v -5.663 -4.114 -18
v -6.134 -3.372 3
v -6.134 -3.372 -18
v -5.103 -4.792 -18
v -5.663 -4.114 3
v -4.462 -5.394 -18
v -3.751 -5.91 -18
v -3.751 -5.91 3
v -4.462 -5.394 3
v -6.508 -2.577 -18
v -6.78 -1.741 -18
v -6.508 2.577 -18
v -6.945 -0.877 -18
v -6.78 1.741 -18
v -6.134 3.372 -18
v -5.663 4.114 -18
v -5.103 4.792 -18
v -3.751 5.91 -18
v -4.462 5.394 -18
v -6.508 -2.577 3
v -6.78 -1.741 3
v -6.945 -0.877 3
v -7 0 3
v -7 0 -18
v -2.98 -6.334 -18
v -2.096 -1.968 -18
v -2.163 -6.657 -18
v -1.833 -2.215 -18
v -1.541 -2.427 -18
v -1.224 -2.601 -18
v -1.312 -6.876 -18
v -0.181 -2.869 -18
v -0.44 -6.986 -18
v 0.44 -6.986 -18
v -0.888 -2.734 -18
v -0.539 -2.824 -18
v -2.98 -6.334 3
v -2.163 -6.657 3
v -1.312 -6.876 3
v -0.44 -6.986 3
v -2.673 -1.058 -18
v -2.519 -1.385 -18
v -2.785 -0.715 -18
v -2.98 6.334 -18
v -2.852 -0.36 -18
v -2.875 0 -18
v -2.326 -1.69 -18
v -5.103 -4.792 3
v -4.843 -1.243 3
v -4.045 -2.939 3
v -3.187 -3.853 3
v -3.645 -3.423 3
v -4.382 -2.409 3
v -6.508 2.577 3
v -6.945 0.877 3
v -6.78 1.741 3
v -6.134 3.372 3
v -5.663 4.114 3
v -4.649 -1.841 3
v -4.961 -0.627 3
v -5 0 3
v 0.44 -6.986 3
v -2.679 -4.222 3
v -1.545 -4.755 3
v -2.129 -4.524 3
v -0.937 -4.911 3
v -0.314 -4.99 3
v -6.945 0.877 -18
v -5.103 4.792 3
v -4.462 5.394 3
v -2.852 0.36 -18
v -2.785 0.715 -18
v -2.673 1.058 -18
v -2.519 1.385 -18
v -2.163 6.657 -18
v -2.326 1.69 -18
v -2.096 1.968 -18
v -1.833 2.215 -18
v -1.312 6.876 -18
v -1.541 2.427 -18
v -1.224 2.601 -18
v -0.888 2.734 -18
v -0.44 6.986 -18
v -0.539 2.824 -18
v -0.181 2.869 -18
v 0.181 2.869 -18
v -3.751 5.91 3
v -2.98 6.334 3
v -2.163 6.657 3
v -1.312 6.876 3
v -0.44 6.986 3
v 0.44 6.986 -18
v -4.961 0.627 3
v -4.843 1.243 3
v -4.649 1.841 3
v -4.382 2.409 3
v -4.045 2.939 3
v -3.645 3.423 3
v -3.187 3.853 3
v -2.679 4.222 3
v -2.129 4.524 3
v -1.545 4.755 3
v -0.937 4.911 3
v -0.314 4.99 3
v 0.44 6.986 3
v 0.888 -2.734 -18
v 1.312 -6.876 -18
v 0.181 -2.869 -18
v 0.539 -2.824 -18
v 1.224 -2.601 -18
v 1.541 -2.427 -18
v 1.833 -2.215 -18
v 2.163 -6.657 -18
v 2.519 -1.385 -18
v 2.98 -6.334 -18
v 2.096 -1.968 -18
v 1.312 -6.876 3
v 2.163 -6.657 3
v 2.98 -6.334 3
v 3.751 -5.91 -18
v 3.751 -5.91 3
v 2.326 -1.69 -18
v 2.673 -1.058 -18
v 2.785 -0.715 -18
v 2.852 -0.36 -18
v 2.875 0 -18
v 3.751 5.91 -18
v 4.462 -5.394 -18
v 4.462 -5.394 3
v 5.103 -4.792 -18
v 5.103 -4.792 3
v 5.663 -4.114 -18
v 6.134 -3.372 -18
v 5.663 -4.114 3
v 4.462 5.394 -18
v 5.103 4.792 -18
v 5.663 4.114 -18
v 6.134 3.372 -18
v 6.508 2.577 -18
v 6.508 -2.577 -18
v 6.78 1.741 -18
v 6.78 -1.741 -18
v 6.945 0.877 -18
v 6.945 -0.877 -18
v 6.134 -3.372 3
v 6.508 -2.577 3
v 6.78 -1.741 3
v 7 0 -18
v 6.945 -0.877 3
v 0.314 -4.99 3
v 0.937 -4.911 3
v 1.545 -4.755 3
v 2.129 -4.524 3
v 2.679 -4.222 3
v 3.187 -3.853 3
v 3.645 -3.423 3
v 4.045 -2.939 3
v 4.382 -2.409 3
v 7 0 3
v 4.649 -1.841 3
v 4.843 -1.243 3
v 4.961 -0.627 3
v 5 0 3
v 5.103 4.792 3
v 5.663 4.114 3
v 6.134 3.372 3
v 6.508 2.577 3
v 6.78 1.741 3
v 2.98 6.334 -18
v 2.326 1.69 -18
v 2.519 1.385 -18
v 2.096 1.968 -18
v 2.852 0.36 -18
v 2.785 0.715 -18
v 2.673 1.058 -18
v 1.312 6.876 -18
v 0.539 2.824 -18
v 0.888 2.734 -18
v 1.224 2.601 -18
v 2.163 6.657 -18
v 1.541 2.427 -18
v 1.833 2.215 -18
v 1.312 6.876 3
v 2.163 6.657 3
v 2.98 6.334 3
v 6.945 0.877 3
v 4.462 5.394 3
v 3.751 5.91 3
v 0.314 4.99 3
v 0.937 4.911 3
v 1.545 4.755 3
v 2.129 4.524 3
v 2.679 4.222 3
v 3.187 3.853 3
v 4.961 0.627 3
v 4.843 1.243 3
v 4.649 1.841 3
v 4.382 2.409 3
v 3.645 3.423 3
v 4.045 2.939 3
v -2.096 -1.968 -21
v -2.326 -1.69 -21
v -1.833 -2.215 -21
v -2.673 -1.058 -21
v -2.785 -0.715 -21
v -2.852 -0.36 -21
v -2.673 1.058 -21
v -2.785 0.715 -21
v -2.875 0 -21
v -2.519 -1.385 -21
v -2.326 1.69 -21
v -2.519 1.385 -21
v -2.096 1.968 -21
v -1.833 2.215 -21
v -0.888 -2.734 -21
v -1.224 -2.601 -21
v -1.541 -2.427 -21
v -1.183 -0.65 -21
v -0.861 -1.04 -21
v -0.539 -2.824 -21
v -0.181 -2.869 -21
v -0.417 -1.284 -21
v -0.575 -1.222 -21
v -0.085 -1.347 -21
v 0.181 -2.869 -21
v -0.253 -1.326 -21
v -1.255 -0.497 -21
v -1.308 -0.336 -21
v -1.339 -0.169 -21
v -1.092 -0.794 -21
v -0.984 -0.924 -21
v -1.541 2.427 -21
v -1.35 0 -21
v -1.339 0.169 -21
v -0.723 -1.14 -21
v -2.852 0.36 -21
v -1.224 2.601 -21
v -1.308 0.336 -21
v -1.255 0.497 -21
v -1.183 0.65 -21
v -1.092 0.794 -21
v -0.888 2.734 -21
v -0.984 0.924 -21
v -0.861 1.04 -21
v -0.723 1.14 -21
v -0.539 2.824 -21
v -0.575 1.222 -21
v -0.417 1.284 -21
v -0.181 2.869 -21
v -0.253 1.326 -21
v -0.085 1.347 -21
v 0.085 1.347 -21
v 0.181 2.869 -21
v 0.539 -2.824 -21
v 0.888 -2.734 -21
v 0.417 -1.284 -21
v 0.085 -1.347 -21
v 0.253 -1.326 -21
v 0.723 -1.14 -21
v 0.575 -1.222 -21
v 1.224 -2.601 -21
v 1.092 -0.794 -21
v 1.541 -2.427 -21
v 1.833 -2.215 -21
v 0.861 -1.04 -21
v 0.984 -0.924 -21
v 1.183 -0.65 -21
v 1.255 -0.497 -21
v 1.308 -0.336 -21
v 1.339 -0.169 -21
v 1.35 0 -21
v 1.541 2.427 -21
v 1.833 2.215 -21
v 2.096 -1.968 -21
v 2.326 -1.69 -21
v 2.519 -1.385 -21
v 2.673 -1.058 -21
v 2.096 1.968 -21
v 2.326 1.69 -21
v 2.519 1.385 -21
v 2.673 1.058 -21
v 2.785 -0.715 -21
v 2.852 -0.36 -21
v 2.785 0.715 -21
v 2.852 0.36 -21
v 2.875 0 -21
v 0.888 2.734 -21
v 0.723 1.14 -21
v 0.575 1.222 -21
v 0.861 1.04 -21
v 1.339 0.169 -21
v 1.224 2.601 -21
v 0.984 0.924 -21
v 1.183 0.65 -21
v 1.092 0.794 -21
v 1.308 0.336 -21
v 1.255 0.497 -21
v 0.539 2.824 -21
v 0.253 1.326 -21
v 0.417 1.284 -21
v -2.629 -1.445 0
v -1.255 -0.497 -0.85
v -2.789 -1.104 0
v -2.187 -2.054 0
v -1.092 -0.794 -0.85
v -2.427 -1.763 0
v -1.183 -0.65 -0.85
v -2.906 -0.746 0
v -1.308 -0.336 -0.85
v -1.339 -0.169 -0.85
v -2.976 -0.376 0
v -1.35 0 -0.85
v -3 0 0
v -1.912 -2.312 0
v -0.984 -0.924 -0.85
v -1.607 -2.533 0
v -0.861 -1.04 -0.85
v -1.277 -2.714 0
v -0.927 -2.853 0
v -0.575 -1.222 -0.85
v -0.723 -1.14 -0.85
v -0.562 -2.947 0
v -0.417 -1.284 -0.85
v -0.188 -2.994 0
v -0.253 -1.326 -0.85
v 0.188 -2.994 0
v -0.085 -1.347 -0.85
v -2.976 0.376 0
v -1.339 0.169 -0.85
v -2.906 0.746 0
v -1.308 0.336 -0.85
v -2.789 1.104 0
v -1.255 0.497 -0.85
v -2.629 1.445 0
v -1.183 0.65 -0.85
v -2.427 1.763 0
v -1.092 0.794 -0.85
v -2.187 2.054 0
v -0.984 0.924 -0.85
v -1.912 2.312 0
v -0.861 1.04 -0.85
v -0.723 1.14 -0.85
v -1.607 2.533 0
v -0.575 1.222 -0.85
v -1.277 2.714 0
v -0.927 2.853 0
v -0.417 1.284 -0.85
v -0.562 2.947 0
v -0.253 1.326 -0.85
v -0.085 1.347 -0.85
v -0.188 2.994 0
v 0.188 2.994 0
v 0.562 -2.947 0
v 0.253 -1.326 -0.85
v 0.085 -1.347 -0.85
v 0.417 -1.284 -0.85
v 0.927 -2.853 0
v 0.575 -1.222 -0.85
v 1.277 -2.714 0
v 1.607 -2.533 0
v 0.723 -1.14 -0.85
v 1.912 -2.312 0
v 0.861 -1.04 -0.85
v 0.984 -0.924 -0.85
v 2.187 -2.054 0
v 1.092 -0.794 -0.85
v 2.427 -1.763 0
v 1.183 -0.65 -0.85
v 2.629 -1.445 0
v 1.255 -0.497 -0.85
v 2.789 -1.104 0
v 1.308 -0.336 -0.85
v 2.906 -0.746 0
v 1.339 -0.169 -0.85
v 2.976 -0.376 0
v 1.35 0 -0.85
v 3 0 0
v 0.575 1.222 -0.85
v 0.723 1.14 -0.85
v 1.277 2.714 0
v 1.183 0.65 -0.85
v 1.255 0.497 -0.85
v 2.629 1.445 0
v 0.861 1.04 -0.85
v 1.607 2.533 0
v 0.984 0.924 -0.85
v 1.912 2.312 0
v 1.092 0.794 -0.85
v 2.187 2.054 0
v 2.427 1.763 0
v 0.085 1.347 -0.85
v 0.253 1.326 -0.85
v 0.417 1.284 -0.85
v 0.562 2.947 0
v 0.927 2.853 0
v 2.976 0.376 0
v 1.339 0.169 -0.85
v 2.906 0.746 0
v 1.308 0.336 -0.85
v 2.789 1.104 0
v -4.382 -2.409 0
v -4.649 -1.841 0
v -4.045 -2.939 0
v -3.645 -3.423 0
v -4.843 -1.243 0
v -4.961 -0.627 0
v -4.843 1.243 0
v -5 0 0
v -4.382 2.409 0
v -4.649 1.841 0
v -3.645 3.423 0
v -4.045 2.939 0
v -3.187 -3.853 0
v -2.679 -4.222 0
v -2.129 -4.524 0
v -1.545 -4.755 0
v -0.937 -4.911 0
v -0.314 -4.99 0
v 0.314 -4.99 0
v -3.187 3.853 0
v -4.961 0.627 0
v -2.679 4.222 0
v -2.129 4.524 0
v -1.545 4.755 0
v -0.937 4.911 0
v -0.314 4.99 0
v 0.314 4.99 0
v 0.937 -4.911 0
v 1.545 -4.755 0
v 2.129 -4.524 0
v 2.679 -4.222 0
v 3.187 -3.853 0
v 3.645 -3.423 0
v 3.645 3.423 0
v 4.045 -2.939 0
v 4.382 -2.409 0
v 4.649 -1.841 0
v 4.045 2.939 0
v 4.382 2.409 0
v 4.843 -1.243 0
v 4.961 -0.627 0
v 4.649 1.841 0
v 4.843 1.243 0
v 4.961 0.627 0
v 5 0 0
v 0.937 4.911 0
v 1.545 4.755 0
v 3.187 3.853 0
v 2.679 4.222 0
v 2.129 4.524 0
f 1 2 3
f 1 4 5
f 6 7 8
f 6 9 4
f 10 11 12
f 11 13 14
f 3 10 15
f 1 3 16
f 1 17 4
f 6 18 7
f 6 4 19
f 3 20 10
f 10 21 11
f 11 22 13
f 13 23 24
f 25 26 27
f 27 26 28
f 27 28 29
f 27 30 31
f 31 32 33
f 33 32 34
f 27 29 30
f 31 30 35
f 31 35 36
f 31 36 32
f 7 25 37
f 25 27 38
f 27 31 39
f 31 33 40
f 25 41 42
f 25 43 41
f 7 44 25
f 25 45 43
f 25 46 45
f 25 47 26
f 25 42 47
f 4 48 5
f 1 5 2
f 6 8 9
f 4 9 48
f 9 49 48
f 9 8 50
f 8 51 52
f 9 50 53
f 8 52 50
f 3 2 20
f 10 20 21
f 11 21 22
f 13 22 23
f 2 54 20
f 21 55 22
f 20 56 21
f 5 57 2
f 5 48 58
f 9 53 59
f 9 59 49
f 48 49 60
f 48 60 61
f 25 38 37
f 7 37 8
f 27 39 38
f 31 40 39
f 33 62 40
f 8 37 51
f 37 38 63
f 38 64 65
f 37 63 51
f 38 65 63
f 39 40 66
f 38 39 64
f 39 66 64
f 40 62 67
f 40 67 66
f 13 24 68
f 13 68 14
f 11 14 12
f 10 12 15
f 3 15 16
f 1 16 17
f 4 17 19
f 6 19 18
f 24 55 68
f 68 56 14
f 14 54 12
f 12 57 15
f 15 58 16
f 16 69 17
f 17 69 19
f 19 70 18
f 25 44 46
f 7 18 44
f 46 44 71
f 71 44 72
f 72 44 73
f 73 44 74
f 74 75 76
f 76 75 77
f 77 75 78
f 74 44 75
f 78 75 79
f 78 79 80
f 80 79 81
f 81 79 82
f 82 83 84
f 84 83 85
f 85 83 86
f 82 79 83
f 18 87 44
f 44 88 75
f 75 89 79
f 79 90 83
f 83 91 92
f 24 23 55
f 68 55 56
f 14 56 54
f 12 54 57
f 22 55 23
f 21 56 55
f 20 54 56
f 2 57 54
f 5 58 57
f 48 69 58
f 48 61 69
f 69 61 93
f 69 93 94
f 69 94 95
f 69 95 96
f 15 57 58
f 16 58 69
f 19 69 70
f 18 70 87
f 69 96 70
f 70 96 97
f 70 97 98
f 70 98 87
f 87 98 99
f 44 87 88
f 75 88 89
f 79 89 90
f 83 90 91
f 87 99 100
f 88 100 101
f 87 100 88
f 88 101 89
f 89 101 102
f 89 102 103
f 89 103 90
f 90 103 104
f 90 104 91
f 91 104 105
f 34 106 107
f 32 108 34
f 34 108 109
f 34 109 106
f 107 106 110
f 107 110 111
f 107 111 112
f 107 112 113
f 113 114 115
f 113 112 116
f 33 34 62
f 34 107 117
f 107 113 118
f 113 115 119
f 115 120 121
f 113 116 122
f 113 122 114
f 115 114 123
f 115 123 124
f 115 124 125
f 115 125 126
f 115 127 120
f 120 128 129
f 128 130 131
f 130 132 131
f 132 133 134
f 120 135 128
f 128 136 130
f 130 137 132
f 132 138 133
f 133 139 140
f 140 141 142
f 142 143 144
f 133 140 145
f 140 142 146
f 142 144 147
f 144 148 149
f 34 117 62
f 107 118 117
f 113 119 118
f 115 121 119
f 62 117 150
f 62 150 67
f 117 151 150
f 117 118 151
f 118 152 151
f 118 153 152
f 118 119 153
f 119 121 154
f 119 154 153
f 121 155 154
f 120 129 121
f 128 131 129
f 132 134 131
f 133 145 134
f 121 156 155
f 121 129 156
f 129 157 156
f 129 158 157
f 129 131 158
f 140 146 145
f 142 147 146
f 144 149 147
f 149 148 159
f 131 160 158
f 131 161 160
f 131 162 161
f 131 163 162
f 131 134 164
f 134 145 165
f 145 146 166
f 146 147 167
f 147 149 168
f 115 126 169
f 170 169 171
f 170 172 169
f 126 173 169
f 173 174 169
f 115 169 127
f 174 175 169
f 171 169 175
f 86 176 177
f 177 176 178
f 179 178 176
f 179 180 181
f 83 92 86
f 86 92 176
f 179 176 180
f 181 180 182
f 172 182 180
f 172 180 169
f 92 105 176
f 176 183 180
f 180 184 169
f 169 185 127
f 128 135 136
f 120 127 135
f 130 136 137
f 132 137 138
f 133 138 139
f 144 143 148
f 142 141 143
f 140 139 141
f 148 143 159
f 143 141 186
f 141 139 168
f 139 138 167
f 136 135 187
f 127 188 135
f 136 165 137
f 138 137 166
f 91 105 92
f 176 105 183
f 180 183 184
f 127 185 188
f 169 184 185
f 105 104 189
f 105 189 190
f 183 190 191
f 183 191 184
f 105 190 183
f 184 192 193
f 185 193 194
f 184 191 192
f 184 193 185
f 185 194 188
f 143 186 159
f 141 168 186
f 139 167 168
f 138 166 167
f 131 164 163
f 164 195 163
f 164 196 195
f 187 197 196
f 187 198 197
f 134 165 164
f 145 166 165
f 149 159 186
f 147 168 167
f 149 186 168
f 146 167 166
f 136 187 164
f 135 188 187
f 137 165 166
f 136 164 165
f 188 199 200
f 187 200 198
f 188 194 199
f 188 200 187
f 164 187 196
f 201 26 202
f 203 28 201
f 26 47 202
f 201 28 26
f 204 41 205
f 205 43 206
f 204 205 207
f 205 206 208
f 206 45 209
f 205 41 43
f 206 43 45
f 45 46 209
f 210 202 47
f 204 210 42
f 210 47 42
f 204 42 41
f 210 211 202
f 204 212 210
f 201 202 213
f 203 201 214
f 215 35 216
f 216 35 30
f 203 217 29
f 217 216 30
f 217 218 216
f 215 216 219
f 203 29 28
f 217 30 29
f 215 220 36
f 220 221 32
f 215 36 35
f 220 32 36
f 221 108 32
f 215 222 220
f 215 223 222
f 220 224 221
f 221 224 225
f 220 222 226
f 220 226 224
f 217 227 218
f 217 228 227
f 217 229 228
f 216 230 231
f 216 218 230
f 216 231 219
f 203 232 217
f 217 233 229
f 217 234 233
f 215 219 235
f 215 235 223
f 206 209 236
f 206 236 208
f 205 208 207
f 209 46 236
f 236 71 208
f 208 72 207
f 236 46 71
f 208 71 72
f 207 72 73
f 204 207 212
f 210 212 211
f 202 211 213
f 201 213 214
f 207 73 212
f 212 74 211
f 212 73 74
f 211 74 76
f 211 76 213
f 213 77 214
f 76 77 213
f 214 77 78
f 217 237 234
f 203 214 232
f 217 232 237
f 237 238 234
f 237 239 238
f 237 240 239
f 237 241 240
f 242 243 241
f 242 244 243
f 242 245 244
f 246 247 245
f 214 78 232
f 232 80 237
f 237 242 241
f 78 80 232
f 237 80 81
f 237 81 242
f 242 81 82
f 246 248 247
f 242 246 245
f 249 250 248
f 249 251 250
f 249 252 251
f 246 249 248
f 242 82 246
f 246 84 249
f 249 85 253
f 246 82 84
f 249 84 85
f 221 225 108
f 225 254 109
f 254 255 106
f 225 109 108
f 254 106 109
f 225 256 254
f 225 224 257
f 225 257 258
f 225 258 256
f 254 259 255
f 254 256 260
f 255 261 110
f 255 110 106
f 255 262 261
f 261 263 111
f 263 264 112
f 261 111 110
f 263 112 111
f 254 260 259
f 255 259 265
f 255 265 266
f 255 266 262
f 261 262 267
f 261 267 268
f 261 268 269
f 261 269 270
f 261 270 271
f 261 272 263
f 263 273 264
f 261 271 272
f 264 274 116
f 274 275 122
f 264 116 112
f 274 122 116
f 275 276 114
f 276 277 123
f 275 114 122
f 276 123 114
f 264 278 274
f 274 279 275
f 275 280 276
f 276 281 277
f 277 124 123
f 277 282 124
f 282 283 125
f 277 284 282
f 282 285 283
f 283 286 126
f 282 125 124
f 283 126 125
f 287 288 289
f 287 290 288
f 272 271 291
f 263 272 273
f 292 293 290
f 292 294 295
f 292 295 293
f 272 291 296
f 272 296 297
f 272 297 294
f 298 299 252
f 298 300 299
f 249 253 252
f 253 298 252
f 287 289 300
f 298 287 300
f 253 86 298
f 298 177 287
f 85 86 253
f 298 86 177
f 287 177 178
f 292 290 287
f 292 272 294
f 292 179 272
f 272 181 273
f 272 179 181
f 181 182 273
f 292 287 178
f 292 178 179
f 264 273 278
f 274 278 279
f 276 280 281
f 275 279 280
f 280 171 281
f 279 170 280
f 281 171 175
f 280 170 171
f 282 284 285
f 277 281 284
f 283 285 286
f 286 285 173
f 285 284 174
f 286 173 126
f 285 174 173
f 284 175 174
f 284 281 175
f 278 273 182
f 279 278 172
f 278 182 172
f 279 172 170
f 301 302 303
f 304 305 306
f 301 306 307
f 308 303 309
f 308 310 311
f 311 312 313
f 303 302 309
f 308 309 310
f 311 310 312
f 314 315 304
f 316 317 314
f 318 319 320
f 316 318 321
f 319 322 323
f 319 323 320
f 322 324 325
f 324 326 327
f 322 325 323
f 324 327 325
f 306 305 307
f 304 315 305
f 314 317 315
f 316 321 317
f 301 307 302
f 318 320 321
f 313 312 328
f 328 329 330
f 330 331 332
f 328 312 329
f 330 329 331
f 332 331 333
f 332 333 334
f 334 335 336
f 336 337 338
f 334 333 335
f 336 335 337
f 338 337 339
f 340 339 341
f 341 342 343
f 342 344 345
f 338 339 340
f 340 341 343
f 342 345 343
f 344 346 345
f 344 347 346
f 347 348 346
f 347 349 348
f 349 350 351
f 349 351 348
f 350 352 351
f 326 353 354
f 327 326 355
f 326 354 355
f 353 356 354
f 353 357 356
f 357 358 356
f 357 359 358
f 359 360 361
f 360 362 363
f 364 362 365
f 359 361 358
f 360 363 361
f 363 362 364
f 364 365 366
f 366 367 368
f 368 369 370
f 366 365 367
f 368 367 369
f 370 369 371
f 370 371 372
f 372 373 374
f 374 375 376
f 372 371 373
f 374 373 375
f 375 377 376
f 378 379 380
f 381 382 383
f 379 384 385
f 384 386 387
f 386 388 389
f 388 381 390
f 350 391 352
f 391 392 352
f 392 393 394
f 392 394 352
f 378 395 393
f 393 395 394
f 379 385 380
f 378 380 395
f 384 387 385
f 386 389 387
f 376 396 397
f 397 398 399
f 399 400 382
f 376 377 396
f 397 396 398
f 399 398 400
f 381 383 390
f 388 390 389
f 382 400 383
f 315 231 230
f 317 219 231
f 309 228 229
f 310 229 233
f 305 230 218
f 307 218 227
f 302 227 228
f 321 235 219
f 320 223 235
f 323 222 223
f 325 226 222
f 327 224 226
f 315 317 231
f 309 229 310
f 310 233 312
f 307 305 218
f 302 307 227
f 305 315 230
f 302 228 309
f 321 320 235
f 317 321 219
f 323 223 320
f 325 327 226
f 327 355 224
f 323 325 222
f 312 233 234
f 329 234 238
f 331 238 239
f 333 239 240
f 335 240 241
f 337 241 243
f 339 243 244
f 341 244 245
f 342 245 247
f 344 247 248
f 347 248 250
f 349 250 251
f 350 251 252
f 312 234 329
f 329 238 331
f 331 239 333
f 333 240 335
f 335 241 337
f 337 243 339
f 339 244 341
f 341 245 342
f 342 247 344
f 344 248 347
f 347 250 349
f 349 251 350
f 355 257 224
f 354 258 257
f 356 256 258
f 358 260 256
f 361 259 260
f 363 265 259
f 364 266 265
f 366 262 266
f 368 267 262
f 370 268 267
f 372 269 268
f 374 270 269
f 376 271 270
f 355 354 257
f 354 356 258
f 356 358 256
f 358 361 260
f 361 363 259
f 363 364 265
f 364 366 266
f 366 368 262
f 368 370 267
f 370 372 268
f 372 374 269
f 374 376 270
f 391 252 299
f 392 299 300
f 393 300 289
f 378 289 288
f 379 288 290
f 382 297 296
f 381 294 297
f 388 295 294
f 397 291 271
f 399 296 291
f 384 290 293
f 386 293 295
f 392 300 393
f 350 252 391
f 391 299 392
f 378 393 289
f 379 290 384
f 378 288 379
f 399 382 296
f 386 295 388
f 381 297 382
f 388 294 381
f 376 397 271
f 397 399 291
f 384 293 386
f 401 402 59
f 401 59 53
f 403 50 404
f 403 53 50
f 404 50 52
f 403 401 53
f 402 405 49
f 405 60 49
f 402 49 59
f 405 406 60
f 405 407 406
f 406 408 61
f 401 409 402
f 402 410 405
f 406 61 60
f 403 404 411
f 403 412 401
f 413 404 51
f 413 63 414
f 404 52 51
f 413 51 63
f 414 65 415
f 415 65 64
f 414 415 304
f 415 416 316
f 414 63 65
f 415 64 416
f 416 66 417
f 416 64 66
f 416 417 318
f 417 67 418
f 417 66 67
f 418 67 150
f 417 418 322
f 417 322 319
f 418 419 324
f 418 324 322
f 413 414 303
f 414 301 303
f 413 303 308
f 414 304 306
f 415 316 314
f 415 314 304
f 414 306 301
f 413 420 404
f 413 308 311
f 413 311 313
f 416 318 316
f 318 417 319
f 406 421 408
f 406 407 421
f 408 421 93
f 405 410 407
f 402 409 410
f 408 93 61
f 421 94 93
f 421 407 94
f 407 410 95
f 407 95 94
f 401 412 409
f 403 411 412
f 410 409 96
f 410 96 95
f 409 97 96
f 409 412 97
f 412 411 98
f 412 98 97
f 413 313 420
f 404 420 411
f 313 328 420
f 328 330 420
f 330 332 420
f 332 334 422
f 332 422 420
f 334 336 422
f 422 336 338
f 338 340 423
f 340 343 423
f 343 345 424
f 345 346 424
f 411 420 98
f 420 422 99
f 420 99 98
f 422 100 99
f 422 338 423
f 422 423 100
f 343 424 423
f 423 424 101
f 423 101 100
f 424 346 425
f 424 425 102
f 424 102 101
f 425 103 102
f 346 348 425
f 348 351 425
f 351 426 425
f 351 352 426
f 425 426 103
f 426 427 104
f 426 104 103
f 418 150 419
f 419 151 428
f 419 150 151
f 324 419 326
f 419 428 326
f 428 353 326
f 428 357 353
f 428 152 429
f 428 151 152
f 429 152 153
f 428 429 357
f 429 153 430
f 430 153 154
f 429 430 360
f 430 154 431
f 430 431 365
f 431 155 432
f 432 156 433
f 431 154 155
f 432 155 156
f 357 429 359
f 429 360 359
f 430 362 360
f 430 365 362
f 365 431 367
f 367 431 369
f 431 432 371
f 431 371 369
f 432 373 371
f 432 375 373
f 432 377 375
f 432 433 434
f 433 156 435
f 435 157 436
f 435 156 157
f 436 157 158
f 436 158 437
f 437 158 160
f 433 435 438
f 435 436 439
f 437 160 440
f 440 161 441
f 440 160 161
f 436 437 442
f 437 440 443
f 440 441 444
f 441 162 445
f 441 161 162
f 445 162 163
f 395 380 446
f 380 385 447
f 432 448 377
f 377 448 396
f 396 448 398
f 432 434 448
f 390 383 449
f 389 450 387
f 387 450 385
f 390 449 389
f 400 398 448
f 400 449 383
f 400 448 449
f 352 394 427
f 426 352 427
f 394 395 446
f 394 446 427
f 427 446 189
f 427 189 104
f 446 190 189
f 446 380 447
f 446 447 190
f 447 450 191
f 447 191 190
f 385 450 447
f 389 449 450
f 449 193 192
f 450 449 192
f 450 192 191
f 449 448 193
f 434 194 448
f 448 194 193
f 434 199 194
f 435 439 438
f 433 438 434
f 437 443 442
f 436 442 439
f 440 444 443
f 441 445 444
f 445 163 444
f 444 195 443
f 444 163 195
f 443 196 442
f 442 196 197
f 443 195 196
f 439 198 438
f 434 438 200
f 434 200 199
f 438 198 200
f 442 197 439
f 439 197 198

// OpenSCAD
$fn = 50;

difference() {
	union() {
		translate(v = [0, 0, -18.0]) {
			cylinder(h = 21, r = 7.0);
		}
		#translate(v = [0, 0, -21.0]) {
			cylinder(h = 21, r = 2.875);
		}
	}
	union() {
		translate(v = [0, 0, 0]) {
			rotate(a = [0, 0, 0]) {
				difference() {
					union() {
						translate(v = [0, 0, -21.0]) {
							cylinder(h = 21, r = 1.0);
						}
						translate(v = [0, 0, -0.85]) {
							cylinder(h = 0.85, r1 = 1.35, r2 = 3.0);
						}
						translate(v = [0, 0, -21.0]) {
							cylinder(h = 21, r = 1.35);
						}
						translate(v = [0, 0, -21.0]) {
							cylinder(h = 21, r = 1.0);
						}
					}
					union();
				}
			}
		}
		#cylinder(h = 3, r = 5.0);
	}
}
